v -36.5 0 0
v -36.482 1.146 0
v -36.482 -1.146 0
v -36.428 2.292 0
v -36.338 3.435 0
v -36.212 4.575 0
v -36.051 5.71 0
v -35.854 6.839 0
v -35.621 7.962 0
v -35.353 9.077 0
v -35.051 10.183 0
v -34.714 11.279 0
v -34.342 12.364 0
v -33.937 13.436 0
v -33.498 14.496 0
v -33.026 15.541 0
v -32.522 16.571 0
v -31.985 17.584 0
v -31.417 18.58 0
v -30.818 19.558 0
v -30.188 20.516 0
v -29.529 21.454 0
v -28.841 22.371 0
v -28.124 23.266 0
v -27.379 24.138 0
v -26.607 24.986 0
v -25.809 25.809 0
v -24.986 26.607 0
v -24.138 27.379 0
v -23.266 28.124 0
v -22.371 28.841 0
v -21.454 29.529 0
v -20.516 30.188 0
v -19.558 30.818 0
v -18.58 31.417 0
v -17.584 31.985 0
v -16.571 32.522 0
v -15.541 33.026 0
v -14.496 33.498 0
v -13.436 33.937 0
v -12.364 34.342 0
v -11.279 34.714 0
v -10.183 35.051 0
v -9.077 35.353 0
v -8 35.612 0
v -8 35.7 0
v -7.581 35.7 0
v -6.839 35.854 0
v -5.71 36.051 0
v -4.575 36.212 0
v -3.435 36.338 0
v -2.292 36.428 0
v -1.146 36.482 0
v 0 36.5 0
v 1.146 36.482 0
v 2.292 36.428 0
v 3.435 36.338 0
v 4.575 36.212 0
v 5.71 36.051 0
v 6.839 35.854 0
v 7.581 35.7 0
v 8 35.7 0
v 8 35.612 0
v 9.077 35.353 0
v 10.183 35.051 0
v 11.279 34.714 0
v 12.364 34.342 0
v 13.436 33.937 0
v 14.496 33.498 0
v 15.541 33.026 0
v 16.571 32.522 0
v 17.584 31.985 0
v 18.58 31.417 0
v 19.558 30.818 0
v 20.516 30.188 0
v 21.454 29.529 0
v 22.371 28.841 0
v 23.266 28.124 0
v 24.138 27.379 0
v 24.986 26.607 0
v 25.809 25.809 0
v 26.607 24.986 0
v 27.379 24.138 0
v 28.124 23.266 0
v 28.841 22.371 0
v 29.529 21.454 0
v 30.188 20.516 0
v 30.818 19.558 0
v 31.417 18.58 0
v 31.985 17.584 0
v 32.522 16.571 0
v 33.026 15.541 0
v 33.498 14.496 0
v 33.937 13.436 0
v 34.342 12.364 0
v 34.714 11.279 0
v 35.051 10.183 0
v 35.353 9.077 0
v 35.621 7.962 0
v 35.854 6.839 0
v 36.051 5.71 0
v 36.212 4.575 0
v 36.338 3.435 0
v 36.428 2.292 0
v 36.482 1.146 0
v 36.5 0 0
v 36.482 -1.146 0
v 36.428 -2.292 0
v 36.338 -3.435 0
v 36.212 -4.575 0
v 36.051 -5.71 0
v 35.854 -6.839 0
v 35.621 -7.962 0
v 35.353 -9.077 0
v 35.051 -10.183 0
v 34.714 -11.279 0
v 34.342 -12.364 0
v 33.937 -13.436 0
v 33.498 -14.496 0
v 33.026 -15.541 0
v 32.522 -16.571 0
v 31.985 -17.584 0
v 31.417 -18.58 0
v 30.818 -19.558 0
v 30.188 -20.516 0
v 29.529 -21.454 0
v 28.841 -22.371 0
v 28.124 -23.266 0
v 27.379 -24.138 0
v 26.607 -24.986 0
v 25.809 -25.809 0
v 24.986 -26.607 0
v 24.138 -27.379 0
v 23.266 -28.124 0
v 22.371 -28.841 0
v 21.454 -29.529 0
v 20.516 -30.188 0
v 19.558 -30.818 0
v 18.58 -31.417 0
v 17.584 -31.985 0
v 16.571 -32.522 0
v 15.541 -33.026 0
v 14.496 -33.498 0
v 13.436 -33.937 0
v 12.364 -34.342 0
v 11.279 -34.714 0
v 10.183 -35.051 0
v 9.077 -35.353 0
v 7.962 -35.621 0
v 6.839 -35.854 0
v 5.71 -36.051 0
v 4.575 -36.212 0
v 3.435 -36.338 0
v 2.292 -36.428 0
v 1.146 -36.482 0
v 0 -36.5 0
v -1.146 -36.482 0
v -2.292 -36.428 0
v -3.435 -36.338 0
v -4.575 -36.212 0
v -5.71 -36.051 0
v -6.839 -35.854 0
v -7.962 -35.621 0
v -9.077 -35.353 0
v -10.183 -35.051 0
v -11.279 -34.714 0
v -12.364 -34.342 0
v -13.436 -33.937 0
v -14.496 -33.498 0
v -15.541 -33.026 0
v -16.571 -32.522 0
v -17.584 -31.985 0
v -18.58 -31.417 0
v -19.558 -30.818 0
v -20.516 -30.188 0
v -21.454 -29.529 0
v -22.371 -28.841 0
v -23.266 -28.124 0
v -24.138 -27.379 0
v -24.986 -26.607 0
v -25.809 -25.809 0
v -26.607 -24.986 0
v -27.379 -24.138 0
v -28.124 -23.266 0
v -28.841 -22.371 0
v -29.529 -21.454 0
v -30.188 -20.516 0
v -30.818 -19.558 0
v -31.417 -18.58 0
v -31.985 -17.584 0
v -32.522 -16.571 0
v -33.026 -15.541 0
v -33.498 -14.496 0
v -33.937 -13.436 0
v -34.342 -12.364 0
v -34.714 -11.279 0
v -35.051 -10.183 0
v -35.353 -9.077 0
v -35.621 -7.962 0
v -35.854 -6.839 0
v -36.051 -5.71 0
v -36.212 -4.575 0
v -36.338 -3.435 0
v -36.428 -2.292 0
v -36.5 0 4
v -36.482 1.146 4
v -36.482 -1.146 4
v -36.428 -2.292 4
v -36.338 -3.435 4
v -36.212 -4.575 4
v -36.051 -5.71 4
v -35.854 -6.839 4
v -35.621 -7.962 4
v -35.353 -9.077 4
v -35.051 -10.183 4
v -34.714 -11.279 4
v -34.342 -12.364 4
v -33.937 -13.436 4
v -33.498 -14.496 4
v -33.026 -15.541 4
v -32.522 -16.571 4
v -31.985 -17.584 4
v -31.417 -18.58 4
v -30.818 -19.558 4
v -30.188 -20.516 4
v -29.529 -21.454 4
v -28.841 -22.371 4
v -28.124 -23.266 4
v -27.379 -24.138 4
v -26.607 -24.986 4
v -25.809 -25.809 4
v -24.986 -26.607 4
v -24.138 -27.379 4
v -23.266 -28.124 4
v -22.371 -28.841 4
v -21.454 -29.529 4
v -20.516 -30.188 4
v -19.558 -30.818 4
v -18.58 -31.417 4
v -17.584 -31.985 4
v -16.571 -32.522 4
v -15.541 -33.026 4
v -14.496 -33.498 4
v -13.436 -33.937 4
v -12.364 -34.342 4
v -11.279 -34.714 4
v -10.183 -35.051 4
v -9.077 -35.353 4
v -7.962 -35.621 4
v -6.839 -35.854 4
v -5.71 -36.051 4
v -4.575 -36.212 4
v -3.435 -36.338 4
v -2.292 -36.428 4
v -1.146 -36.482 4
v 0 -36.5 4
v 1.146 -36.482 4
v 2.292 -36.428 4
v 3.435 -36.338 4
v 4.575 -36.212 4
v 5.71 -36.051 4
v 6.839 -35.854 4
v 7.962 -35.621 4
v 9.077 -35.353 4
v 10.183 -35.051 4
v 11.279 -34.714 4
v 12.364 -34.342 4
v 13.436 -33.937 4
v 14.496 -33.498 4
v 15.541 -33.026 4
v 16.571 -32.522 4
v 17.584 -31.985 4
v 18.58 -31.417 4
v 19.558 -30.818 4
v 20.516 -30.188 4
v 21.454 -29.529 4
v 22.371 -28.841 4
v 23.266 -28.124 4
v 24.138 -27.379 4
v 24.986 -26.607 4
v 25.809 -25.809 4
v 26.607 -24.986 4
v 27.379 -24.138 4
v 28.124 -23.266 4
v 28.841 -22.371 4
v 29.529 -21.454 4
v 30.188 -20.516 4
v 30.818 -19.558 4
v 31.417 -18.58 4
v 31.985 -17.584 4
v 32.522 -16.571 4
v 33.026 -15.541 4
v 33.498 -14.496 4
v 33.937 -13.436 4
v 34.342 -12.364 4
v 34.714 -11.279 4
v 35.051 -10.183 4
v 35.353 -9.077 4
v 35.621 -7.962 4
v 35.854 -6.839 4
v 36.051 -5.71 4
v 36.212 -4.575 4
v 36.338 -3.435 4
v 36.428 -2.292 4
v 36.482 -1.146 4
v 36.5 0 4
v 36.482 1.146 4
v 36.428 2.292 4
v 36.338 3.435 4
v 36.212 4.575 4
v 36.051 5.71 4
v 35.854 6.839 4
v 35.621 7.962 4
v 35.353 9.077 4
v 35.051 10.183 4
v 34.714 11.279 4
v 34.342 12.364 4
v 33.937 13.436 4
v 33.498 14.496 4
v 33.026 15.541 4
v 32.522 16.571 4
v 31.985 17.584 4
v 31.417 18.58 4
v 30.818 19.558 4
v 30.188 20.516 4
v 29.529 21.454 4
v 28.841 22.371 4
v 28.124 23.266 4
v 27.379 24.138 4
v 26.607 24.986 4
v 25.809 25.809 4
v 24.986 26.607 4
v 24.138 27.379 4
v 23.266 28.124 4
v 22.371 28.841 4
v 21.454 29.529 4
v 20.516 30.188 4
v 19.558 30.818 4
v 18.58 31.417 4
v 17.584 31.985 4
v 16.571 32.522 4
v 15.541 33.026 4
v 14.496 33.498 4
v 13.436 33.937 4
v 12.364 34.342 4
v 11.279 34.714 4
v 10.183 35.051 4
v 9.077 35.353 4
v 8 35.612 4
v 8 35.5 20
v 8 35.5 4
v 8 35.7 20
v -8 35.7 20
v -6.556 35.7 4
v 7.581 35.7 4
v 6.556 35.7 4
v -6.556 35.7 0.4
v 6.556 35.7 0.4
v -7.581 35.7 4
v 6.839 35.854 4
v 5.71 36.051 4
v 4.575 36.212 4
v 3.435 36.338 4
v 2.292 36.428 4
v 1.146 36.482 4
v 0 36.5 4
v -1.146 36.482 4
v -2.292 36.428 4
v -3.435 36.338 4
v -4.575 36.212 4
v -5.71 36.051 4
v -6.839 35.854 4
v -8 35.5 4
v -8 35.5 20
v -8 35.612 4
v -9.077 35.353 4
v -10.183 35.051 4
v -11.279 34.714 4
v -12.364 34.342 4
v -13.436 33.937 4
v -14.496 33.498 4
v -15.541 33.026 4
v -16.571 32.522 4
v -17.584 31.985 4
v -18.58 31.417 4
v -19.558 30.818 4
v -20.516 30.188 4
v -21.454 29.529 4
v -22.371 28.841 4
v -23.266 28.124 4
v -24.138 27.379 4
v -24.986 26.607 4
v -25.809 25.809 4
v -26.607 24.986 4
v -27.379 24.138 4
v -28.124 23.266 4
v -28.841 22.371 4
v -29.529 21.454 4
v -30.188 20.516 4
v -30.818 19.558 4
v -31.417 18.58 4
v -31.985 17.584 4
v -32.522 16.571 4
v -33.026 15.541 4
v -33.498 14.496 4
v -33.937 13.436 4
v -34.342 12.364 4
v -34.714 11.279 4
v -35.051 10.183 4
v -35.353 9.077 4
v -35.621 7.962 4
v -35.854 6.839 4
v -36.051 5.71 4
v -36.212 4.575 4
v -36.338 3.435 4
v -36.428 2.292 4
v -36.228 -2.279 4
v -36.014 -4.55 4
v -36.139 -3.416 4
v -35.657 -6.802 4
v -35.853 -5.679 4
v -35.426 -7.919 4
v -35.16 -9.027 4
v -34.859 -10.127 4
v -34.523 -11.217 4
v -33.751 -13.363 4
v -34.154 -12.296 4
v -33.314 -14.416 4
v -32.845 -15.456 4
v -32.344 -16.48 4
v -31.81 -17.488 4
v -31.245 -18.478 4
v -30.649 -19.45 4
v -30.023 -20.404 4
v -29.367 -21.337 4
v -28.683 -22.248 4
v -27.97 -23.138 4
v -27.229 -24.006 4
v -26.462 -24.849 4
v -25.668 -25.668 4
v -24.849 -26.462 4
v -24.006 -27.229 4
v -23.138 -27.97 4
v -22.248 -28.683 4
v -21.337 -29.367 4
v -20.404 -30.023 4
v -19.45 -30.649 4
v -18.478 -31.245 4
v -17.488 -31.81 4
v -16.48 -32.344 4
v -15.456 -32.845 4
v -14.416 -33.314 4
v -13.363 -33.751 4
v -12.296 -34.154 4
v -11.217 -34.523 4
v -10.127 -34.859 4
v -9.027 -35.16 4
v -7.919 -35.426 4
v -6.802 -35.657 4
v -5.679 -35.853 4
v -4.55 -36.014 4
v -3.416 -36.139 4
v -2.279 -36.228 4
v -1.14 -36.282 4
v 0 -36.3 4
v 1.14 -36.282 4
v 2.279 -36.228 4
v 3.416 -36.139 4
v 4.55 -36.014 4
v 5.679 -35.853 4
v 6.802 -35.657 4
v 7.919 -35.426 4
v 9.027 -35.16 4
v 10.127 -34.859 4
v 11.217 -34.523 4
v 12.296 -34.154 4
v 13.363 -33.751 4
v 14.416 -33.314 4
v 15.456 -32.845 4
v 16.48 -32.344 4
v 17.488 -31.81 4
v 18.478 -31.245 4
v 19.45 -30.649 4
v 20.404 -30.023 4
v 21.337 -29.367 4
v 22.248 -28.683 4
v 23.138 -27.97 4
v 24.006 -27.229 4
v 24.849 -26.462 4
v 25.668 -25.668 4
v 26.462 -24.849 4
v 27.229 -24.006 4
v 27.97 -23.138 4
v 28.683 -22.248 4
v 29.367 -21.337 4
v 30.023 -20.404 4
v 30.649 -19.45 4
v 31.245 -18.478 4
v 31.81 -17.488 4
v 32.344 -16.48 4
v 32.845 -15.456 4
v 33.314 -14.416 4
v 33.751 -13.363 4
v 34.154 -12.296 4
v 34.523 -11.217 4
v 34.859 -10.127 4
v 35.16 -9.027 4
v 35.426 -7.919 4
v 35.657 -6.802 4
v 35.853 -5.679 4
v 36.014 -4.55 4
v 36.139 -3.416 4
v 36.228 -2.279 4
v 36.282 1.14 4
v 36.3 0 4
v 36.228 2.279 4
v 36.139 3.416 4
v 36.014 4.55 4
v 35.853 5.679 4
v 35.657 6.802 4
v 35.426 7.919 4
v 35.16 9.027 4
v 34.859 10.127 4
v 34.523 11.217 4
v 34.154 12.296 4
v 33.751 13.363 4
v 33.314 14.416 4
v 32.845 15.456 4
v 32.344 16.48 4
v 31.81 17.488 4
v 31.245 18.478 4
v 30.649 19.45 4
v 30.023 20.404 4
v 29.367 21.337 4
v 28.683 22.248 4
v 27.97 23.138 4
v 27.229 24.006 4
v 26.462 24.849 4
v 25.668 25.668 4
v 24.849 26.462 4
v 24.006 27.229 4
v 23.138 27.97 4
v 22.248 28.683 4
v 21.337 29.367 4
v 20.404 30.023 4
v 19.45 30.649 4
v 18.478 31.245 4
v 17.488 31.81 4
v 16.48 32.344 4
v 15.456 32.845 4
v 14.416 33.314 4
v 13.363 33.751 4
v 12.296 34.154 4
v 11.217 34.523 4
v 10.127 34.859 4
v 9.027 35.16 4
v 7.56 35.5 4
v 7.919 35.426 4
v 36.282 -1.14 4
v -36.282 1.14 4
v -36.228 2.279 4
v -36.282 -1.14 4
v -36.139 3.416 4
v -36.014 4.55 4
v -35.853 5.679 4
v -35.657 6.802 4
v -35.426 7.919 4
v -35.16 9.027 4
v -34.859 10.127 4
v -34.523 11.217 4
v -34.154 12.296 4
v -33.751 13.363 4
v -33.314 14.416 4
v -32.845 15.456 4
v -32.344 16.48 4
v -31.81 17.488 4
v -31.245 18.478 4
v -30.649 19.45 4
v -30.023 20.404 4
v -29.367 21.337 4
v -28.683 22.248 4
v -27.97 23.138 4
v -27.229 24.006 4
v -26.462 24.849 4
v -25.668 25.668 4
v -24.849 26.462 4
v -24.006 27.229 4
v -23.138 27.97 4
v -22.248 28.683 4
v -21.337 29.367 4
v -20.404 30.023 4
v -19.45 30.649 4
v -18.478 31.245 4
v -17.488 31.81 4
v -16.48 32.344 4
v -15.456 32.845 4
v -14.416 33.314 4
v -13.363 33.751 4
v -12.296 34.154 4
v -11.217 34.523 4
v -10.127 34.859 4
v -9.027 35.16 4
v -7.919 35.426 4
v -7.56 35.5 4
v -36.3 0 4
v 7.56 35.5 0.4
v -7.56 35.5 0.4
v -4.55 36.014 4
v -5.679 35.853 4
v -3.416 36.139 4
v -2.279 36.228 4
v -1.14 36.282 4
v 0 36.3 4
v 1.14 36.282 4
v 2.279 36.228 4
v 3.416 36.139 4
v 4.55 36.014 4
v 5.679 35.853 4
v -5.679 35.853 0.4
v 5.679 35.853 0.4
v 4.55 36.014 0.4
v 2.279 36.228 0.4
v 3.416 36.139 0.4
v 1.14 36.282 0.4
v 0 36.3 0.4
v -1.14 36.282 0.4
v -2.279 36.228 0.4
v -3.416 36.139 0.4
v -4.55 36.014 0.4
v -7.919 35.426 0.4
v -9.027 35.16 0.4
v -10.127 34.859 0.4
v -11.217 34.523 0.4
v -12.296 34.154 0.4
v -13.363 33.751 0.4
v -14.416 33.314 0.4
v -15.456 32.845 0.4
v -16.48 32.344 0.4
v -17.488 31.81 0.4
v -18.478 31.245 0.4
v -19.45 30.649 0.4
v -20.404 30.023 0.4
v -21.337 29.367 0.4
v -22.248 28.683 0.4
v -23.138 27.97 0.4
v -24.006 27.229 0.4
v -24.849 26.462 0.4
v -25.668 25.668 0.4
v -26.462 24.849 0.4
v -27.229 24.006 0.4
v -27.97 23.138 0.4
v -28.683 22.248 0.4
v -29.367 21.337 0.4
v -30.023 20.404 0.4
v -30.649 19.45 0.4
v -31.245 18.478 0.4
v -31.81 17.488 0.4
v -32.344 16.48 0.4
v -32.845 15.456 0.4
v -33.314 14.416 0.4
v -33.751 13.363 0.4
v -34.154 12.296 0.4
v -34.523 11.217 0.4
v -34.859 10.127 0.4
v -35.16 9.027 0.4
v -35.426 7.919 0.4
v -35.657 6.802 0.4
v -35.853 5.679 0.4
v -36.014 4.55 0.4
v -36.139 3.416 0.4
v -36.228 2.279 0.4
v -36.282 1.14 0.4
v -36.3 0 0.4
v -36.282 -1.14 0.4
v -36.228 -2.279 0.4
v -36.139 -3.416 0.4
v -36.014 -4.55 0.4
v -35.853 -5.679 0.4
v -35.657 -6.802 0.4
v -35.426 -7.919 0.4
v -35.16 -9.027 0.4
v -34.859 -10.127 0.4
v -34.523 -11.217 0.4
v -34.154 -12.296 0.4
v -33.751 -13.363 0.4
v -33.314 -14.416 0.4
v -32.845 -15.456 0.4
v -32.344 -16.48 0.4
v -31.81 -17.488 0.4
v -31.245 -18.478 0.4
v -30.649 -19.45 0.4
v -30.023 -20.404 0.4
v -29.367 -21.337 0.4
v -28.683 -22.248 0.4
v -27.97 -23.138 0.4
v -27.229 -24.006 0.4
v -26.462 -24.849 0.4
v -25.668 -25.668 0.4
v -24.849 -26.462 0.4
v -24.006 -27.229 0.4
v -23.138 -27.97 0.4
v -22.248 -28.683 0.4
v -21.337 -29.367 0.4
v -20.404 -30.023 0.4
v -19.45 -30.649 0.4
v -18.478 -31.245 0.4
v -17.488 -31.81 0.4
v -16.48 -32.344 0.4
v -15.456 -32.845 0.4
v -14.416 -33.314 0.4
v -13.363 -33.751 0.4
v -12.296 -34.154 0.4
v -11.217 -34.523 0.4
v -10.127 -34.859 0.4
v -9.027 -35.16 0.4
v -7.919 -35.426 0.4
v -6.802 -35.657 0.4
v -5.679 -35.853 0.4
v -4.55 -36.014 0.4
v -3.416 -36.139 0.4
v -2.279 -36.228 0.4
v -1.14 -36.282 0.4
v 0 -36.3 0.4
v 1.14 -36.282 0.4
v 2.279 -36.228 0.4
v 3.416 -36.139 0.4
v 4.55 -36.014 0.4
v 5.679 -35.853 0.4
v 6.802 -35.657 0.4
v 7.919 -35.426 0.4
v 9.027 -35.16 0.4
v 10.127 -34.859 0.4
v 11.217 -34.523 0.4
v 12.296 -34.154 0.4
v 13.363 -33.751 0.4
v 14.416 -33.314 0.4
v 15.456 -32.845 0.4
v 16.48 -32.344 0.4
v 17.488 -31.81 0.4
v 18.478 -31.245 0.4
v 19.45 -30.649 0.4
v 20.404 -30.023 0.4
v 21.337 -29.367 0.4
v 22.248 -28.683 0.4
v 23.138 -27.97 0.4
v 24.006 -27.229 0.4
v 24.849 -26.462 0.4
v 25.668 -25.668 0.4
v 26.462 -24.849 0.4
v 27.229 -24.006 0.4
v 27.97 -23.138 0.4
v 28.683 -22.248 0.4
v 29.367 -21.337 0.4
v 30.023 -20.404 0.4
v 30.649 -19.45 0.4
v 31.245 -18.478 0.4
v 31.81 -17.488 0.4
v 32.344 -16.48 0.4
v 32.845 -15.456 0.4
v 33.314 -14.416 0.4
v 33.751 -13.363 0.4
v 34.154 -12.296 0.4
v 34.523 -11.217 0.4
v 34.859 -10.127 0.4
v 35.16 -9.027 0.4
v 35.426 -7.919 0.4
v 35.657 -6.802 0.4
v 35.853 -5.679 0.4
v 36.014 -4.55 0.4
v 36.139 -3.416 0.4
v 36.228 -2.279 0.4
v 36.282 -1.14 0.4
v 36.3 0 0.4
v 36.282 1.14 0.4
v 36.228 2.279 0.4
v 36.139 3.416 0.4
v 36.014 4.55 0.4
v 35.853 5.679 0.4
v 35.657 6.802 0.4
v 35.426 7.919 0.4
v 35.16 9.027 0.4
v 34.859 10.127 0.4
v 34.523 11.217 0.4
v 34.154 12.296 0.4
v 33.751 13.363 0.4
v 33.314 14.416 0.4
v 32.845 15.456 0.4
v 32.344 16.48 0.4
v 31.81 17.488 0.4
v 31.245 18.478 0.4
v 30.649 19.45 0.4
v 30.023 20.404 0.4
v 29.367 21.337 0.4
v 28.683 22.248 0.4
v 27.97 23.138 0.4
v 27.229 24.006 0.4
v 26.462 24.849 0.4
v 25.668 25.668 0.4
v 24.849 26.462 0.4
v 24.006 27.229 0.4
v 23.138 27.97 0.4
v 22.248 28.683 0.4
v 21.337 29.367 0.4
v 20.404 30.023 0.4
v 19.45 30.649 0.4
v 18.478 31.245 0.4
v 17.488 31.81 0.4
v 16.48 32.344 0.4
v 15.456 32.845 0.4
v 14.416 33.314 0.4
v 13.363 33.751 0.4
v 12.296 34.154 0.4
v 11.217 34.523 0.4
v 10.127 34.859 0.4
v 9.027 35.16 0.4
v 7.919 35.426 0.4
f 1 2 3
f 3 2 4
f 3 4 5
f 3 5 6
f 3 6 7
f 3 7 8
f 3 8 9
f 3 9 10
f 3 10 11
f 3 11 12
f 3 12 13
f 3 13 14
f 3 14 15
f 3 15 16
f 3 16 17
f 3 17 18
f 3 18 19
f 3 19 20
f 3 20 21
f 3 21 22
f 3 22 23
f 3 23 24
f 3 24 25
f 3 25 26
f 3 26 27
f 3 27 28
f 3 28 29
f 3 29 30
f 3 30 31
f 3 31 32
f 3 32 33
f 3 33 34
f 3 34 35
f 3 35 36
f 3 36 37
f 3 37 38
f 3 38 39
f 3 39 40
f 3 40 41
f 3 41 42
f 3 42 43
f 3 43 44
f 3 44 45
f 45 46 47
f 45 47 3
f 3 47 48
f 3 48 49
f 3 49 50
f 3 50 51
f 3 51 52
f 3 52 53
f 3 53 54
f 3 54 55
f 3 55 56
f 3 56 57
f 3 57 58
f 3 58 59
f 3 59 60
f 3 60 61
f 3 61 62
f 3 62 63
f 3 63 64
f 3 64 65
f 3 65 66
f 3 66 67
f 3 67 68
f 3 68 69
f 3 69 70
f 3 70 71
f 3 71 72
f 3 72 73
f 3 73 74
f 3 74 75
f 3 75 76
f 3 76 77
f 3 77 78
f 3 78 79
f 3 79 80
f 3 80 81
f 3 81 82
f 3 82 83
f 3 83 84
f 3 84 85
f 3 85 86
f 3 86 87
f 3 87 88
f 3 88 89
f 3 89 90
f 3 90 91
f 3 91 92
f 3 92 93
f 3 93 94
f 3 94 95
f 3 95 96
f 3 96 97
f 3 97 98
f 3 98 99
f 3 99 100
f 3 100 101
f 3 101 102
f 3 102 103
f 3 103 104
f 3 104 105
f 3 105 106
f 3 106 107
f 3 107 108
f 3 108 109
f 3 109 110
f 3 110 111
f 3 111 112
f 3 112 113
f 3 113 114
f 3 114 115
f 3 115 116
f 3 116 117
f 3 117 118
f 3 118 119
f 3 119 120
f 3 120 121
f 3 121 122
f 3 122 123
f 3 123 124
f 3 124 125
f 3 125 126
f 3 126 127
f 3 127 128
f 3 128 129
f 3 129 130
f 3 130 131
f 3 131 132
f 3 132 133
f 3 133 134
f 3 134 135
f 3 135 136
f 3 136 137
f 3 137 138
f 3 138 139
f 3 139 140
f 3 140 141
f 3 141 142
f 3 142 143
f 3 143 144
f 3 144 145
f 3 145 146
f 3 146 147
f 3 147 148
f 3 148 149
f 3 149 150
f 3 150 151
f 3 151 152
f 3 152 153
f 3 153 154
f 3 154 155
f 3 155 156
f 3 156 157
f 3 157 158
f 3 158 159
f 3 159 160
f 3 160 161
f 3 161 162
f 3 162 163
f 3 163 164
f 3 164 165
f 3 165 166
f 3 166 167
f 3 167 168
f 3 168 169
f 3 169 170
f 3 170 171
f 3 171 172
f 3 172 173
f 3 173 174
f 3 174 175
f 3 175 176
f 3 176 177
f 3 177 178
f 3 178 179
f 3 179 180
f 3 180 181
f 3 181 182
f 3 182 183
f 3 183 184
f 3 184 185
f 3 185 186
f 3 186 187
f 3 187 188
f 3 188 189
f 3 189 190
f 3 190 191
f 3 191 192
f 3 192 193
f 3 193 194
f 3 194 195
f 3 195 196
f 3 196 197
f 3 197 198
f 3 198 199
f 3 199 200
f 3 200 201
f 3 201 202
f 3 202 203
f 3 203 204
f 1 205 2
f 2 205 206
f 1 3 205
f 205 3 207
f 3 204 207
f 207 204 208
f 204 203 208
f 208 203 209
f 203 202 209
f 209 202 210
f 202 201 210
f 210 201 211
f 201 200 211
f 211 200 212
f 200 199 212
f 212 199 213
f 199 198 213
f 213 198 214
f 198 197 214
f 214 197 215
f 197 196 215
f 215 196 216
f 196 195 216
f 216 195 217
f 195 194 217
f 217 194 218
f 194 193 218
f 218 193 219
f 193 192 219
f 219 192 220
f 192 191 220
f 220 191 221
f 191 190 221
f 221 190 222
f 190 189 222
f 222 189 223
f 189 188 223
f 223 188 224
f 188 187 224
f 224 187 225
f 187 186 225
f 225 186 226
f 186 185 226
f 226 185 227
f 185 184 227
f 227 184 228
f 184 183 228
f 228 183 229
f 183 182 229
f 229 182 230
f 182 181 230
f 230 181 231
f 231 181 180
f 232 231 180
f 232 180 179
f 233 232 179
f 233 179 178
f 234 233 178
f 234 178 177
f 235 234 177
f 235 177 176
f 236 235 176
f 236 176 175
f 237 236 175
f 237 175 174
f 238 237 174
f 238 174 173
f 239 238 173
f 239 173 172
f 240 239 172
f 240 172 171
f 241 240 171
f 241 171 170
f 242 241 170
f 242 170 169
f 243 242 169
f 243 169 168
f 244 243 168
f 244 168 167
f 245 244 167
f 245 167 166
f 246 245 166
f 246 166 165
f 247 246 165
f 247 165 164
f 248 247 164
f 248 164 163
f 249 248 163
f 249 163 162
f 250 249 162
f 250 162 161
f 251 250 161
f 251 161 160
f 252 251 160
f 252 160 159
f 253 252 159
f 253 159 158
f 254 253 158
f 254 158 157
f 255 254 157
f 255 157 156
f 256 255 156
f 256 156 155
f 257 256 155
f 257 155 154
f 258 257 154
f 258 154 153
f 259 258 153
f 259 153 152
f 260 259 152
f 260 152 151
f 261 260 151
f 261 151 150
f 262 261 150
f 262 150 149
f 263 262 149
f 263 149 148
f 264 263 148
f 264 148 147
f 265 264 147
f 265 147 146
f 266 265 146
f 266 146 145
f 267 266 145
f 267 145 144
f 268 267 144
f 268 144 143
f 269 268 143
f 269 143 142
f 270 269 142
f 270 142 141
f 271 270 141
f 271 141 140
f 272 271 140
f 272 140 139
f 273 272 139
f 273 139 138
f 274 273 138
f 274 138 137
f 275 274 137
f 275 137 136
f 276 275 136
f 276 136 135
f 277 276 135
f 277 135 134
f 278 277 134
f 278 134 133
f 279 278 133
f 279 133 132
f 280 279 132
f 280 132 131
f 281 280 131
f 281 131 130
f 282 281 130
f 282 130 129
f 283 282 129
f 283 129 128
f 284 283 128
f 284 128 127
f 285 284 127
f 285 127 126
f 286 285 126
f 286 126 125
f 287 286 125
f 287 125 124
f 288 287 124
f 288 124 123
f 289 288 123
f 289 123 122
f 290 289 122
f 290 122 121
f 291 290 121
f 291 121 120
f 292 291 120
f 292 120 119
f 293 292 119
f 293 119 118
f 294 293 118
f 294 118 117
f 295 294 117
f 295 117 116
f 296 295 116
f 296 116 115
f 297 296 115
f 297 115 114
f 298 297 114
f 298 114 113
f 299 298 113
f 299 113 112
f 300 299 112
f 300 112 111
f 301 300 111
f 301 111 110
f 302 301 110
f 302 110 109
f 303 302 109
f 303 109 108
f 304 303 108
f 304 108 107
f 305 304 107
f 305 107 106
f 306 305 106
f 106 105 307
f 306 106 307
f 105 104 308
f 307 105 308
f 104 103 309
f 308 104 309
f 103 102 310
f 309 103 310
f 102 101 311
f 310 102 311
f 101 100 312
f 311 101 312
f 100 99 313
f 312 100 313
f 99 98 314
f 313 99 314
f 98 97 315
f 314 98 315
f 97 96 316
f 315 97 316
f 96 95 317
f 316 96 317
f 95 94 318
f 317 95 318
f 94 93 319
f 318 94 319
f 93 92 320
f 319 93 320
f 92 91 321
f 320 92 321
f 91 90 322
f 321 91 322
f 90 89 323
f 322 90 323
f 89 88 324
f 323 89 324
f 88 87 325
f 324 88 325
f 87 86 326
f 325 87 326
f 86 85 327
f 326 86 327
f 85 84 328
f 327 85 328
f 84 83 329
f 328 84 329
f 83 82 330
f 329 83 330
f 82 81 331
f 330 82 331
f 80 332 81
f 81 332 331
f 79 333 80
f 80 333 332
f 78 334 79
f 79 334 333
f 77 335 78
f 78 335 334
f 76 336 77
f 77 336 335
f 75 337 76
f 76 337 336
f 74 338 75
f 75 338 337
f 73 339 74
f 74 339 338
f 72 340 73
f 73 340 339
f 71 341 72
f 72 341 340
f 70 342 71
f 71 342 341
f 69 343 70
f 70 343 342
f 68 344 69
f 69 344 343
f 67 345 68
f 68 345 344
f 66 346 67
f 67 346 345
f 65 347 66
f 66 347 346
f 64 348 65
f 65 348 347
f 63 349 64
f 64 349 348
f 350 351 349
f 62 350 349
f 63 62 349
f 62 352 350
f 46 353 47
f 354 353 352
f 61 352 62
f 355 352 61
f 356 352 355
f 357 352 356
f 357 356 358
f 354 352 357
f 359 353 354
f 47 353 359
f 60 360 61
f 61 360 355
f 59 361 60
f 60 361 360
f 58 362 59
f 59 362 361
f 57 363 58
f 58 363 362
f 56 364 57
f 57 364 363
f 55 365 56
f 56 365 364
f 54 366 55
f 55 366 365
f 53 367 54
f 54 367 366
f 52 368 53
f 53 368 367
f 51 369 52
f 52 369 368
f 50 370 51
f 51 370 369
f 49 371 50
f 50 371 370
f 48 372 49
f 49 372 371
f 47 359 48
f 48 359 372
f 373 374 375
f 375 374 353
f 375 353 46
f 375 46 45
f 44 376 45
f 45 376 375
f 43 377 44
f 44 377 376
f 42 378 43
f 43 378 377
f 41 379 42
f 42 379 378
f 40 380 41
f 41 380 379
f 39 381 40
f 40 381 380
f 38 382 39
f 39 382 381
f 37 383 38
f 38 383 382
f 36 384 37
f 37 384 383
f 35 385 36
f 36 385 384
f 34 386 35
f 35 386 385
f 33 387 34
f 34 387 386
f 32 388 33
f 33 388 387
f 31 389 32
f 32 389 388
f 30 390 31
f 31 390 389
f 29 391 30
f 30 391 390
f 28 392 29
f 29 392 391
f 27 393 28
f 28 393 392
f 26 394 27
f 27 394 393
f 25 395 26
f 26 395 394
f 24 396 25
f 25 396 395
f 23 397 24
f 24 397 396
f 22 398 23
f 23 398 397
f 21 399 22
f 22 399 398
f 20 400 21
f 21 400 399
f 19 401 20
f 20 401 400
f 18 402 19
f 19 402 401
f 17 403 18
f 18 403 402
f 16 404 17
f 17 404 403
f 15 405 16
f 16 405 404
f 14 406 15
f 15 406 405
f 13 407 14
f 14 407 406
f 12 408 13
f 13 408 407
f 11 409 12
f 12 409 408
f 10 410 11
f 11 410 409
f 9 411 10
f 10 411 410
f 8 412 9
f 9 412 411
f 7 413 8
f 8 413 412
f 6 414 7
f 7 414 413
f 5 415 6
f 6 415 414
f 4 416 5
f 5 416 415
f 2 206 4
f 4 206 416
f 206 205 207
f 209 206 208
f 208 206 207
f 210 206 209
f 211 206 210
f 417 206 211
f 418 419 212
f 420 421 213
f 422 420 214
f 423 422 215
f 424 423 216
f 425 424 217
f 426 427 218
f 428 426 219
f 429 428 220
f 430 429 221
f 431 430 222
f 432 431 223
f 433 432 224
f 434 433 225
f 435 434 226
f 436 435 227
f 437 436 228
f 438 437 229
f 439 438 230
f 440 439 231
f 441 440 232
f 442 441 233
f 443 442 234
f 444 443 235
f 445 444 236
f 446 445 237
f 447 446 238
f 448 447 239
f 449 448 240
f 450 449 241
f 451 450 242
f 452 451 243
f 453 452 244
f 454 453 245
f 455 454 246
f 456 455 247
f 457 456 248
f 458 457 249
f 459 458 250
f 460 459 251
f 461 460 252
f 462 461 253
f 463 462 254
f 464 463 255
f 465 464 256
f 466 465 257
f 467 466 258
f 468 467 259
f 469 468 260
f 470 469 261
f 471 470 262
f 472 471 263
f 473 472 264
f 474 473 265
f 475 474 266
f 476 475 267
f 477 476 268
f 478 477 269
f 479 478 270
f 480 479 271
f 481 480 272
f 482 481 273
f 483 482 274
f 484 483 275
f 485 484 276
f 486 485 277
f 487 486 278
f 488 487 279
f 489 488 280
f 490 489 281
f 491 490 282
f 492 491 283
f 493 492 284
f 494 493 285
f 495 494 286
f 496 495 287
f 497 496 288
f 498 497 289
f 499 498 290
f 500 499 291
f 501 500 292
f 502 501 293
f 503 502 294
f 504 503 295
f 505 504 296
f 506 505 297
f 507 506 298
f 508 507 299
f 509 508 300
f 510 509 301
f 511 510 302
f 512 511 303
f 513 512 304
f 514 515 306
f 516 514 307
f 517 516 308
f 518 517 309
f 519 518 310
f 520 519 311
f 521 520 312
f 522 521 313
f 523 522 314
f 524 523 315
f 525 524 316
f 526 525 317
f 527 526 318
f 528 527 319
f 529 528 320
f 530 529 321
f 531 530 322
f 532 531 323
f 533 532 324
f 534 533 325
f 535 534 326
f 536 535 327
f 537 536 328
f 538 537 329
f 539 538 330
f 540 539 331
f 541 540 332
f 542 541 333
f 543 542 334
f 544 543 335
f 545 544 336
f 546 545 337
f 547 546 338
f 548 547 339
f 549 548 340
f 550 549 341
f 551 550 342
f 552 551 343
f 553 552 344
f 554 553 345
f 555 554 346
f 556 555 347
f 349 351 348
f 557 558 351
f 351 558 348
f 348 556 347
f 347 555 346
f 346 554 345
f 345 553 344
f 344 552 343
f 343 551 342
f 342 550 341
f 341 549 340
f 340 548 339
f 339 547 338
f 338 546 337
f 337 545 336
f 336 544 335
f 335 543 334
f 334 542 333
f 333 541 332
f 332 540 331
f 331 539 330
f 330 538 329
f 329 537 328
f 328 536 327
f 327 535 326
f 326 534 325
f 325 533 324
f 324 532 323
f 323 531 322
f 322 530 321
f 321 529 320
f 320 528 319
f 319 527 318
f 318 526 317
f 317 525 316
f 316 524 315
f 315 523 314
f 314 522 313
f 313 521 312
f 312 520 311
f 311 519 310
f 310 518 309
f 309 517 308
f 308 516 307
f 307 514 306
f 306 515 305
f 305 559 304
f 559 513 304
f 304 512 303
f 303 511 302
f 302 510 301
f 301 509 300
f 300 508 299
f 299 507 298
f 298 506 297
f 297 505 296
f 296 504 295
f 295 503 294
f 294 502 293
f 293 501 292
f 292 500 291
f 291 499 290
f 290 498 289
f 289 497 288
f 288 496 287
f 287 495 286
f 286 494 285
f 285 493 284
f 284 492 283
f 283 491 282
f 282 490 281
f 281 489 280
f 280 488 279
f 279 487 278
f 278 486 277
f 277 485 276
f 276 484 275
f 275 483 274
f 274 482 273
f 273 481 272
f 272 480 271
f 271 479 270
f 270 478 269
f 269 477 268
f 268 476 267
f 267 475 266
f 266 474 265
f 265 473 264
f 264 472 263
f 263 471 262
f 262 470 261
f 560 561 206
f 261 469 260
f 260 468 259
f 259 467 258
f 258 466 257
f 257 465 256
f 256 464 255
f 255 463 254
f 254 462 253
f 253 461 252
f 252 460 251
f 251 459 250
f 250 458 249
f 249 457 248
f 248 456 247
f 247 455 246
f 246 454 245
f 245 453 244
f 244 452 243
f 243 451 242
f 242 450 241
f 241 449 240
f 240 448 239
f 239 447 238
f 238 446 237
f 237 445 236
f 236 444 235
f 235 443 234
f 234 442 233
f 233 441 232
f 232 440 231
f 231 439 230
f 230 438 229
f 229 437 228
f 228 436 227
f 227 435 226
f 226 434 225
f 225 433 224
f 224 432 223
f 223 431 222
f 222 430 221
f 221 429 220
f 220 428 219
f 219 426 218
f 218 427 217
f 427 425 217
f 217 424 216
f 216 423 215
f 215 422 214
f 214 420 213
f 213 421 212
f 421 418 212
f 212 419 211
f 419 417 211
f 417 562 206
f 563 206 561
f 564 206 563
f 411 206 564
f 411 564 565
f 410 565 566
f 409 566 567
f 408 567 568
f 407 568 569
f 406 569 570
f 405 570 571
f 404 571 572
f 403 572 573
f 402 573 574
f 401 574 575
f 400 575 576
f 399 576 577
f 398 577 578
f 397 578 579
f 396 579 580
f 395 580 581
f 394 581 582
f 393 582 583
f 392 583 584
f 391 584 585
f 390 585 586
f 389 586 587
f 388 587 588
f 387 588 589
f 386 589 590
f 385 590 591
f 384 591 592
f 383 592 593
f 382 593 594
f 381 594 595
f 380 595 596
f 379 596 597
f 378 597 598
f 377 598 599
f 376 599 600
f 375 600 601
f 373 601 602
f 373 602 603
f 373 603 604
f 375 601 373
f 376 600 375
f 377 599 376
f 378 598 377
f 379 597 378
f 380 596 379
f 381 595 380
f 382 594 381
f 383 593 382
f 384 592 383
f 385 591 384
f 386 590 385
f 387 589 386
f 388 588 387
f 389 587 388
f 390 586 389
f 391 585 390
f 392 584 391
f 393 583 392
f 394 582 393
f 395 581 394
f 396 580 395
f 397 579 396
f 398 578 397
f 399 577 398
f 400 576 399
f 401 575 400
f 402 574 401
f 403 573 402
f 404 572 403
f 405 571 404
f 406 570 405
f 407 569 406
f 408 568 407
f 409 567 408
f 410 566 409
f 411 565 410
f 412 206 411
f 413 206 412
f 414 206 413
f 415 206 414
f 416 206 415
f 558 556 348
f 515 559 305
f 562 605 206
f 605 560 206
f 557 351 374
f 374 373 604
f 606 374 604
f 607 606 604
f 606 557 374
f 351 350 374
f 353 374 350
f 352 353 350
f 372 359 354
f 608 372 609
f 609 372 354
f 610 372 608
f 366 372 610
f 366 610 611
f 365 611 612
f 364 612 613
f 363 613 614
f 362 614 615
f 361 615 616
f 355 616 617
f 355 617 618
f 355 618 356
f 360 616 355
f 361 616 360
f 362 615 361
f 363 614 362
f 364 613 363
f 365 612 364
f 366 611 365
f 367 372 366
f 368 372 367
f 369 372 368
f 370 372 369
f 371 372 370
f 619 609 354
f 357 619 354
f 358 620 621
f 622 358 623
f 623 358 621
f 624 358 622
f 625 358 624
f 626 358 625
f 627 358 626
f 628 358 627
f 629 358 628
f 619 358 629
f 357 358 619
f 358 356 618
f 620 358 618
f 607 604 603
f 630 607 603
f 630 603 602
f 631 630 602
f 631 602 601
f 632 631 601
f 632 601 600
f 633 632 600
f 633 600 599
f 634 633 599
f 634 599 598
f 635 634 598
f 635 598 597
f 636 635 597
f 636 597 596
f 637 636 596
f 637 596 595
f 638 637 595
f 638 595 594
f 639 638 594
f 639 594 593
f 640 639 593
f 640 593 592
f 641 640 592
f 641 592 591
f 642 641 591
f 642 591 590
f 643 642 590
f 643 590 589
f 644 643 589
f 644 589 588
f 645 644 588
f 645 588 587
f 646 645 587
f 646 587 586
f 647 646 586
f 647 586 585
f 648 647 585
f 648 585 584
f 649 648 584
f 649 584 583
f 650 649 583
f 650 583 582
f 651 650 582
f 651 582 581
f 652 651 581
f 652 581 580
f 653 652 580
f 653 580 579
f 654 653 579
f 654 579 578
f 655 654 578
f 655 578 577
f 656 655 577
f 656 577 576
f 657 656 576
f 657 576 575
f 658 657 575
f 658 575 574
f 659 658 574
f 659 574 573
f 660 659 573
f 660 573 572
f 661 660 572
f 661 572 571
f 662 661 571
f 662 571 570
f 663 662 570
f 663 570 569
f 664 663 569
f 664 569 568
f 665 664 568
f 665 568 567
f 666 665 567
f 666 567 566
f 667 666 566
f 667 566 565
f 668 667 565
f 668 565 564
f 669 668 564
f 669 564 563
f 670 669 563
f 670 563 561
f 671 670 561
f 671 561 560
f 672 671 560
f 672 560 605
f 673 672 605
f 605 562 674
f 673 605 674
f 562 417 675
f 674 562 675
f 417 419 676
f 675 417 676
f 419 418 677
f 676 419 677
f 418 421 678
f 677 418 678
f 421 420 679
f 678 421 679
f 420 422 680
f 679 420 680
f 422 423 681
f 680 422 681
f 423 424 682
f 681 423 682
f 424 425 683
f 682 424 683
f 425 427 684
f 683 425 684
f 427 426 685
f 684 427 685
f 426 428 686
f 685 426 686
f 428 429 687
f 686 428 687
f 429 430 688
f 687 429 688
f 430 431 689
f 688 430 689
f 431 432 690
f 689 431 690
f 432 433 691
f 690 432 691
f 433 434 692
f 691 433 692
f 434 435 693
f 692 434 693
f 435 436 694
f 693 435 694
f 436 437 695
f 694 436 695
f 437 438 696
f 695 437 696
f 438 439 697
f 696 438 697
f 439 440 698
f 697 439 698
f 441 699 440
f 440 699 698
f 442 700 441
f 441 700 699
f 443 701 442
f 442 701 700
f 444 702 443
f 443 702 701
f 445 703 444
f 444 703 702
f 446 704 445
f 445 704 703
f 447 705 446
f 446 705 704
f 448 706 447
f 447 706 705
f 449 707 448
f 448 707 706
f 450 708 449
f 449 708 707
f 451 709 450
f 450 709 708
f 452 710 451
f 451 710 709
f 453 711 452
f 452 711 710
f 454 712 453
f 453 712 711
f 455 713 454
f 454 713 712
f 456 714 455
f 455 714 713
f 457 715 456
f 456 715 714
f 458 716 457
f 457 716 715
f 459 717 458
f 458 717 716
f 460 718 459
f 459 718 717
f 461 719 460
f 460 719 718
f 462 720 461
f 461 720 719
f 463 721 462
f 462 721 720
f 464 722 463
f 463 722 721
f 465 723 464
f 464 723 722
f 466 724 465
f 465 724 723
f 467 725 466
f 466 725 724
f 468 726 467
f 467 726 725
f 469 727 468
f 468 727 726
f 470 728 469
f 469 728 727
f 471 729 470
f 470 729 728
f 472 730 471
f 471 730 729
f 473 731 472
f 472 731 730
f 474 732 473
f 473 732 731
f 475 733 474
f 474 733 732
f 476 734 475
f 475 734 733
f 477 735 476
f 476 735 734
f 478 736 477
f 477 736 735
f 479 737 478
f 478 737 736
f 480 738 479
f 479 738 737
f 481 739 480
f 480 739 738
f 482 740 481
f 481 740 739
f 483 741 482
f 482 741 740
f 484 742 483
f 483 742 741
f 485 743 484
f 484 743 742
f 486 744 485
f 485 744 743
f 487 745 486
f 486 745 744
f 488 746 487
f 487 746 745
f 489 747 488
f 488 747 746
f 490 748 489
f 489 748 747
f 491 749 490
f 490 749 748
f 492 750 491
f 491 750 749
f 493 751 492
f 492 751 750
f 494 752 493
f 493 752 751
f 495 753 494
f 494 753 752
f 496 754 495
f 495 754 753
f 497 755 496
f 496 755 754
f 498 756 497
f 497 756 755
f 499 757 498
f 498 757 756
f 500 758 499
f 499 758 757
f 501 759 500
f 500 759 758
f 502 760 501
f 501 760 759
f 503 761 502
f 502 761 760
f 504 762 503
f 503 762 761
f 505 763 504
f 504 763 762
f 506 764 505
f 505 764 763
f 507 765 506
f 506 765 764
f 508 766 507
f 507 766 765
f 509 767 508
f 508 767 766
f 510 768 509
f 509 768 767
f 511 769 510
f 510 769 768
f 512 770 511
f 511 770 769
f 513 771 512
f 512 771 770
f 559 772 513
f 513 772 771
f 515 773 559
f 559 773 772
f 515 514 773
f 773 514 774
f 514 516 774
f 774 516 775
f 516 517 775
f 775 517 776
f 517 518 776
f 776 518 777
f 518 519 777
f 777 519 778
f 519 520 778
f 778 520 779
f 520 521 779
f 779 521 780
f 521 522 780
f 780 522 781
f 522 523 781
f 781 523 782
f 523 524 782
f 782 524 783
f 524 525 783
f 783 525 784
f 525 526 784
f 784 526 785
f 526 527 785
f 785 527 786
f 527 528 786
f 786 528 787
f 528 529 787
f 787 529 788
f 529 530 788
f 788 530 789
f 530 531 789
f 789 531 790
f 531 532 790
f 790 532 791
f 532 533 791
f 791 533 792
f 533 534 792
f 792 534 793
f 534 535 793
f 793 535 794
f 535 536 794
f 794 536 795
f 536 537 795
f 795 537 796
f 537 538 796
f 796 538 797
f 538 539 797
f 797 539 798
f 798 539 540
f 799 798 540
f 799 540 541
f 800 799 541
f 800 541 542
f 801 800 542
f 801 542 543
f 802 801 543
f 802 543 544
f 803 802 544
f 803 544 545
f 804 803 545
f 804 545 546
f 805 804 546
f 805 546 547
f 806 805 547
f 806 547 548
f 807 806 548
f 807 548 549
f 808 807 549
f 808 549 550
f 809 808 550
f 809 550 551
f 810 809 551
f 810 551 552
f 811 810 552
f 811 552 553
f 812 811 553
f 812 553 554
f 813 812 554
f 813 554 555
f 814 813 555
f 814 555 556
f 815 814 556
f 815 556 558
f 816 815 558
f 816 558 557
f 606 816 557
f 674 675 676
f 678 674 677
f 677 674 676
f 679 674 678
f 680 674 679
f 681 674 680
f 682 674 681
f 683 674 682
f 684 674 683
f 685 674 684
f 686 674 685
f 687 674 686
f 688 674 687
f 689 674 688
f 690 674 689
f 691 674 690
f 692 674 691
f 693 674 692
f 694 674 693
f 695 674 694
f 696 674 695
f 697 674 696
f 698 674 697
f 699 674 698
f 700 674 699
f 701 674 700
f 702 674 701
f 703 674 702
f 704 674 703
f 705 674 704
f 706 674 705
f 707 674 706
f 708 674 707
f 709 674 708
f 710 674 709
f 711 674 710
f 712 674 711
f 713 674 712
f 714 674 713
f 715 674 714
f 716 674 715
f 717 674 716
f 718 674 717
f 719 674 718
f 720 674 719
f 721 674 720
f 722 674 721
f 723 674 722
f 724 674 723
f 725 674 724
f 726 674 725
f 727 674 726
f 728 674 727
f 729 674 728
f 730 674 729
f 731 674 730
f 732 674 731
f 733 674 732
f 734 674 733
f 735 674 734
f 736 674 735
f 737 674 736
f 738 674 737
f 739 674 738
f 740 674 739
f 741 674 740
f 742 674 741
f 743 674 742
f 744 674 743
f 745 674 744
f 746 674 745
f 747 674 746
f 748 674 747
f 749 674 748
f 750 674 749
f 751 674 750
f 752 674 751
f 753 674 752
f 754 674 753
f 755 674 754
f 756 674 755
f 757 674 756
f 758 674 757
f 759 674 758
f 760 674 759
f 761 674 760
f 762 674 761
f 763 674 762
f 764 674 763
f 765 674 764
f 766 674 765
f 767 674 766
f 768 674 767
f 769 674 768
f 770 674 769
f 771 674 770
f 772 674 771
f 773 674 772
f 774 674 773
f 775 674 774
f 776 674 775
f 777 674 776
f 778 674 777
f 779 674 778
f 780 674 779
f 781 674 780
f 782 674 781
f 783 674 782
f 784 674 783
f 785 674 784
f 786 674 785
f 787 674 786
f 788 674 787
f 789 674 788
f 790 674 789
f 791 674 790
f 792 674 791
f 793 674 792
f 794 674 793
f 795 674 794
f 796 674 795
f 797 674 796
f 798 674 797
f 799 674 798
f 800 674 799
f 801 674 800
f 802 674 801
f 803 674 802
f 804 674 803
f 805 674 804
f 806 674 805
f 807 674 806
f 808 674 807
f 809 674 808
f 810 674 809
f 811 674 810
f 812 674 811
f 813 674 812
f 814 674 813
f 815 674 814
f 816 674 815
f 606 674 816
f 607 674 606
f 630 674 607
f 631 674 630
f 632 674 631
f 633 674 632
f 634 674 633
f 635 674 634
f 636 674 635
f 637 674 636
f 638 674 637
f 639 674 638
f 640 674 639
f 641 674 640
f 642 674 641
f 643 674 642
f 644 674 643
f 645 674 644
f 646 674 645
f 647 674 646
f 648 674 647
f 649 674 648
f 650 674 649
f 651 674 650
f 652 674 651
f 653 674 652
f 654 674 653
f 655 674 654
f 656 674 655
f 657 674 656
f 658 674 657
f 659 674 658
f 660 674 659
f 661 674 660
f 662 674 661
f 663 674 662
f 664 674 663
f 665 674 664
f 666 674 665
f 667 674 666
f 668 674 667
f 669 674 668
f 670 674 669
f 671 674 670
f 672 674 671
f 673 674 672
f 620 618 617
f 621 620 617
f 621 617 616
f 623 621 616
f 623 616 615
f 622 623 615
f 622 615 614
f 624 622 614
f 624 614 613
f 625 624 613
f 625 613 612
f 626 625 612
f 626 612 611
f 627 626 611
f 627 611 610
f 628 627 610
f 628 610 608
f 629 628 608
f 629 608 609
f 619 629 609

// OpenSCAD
//floor for http://www.thingiverse.com/thing:25933

//measured with 500% scaled model
diameter=73;
door_width=16;
floor_height=0.4;
wall_height=4;
door_height=20;
fn=200;

difference(){
cylinder(r=diameter/2,h=wall_height,$fn=fn);
translate([0,0,floor_height])cylinder(r=diameter/2-0.2,h=wall_height,$fn=fn);
}

translate([-door_width/2,diameter/2-1,0])cube([door_width,0.2,door_height]);
//translate([-door_width/2+1,diameter/2-1,0])cube([door_width-2,5,0.2]);
